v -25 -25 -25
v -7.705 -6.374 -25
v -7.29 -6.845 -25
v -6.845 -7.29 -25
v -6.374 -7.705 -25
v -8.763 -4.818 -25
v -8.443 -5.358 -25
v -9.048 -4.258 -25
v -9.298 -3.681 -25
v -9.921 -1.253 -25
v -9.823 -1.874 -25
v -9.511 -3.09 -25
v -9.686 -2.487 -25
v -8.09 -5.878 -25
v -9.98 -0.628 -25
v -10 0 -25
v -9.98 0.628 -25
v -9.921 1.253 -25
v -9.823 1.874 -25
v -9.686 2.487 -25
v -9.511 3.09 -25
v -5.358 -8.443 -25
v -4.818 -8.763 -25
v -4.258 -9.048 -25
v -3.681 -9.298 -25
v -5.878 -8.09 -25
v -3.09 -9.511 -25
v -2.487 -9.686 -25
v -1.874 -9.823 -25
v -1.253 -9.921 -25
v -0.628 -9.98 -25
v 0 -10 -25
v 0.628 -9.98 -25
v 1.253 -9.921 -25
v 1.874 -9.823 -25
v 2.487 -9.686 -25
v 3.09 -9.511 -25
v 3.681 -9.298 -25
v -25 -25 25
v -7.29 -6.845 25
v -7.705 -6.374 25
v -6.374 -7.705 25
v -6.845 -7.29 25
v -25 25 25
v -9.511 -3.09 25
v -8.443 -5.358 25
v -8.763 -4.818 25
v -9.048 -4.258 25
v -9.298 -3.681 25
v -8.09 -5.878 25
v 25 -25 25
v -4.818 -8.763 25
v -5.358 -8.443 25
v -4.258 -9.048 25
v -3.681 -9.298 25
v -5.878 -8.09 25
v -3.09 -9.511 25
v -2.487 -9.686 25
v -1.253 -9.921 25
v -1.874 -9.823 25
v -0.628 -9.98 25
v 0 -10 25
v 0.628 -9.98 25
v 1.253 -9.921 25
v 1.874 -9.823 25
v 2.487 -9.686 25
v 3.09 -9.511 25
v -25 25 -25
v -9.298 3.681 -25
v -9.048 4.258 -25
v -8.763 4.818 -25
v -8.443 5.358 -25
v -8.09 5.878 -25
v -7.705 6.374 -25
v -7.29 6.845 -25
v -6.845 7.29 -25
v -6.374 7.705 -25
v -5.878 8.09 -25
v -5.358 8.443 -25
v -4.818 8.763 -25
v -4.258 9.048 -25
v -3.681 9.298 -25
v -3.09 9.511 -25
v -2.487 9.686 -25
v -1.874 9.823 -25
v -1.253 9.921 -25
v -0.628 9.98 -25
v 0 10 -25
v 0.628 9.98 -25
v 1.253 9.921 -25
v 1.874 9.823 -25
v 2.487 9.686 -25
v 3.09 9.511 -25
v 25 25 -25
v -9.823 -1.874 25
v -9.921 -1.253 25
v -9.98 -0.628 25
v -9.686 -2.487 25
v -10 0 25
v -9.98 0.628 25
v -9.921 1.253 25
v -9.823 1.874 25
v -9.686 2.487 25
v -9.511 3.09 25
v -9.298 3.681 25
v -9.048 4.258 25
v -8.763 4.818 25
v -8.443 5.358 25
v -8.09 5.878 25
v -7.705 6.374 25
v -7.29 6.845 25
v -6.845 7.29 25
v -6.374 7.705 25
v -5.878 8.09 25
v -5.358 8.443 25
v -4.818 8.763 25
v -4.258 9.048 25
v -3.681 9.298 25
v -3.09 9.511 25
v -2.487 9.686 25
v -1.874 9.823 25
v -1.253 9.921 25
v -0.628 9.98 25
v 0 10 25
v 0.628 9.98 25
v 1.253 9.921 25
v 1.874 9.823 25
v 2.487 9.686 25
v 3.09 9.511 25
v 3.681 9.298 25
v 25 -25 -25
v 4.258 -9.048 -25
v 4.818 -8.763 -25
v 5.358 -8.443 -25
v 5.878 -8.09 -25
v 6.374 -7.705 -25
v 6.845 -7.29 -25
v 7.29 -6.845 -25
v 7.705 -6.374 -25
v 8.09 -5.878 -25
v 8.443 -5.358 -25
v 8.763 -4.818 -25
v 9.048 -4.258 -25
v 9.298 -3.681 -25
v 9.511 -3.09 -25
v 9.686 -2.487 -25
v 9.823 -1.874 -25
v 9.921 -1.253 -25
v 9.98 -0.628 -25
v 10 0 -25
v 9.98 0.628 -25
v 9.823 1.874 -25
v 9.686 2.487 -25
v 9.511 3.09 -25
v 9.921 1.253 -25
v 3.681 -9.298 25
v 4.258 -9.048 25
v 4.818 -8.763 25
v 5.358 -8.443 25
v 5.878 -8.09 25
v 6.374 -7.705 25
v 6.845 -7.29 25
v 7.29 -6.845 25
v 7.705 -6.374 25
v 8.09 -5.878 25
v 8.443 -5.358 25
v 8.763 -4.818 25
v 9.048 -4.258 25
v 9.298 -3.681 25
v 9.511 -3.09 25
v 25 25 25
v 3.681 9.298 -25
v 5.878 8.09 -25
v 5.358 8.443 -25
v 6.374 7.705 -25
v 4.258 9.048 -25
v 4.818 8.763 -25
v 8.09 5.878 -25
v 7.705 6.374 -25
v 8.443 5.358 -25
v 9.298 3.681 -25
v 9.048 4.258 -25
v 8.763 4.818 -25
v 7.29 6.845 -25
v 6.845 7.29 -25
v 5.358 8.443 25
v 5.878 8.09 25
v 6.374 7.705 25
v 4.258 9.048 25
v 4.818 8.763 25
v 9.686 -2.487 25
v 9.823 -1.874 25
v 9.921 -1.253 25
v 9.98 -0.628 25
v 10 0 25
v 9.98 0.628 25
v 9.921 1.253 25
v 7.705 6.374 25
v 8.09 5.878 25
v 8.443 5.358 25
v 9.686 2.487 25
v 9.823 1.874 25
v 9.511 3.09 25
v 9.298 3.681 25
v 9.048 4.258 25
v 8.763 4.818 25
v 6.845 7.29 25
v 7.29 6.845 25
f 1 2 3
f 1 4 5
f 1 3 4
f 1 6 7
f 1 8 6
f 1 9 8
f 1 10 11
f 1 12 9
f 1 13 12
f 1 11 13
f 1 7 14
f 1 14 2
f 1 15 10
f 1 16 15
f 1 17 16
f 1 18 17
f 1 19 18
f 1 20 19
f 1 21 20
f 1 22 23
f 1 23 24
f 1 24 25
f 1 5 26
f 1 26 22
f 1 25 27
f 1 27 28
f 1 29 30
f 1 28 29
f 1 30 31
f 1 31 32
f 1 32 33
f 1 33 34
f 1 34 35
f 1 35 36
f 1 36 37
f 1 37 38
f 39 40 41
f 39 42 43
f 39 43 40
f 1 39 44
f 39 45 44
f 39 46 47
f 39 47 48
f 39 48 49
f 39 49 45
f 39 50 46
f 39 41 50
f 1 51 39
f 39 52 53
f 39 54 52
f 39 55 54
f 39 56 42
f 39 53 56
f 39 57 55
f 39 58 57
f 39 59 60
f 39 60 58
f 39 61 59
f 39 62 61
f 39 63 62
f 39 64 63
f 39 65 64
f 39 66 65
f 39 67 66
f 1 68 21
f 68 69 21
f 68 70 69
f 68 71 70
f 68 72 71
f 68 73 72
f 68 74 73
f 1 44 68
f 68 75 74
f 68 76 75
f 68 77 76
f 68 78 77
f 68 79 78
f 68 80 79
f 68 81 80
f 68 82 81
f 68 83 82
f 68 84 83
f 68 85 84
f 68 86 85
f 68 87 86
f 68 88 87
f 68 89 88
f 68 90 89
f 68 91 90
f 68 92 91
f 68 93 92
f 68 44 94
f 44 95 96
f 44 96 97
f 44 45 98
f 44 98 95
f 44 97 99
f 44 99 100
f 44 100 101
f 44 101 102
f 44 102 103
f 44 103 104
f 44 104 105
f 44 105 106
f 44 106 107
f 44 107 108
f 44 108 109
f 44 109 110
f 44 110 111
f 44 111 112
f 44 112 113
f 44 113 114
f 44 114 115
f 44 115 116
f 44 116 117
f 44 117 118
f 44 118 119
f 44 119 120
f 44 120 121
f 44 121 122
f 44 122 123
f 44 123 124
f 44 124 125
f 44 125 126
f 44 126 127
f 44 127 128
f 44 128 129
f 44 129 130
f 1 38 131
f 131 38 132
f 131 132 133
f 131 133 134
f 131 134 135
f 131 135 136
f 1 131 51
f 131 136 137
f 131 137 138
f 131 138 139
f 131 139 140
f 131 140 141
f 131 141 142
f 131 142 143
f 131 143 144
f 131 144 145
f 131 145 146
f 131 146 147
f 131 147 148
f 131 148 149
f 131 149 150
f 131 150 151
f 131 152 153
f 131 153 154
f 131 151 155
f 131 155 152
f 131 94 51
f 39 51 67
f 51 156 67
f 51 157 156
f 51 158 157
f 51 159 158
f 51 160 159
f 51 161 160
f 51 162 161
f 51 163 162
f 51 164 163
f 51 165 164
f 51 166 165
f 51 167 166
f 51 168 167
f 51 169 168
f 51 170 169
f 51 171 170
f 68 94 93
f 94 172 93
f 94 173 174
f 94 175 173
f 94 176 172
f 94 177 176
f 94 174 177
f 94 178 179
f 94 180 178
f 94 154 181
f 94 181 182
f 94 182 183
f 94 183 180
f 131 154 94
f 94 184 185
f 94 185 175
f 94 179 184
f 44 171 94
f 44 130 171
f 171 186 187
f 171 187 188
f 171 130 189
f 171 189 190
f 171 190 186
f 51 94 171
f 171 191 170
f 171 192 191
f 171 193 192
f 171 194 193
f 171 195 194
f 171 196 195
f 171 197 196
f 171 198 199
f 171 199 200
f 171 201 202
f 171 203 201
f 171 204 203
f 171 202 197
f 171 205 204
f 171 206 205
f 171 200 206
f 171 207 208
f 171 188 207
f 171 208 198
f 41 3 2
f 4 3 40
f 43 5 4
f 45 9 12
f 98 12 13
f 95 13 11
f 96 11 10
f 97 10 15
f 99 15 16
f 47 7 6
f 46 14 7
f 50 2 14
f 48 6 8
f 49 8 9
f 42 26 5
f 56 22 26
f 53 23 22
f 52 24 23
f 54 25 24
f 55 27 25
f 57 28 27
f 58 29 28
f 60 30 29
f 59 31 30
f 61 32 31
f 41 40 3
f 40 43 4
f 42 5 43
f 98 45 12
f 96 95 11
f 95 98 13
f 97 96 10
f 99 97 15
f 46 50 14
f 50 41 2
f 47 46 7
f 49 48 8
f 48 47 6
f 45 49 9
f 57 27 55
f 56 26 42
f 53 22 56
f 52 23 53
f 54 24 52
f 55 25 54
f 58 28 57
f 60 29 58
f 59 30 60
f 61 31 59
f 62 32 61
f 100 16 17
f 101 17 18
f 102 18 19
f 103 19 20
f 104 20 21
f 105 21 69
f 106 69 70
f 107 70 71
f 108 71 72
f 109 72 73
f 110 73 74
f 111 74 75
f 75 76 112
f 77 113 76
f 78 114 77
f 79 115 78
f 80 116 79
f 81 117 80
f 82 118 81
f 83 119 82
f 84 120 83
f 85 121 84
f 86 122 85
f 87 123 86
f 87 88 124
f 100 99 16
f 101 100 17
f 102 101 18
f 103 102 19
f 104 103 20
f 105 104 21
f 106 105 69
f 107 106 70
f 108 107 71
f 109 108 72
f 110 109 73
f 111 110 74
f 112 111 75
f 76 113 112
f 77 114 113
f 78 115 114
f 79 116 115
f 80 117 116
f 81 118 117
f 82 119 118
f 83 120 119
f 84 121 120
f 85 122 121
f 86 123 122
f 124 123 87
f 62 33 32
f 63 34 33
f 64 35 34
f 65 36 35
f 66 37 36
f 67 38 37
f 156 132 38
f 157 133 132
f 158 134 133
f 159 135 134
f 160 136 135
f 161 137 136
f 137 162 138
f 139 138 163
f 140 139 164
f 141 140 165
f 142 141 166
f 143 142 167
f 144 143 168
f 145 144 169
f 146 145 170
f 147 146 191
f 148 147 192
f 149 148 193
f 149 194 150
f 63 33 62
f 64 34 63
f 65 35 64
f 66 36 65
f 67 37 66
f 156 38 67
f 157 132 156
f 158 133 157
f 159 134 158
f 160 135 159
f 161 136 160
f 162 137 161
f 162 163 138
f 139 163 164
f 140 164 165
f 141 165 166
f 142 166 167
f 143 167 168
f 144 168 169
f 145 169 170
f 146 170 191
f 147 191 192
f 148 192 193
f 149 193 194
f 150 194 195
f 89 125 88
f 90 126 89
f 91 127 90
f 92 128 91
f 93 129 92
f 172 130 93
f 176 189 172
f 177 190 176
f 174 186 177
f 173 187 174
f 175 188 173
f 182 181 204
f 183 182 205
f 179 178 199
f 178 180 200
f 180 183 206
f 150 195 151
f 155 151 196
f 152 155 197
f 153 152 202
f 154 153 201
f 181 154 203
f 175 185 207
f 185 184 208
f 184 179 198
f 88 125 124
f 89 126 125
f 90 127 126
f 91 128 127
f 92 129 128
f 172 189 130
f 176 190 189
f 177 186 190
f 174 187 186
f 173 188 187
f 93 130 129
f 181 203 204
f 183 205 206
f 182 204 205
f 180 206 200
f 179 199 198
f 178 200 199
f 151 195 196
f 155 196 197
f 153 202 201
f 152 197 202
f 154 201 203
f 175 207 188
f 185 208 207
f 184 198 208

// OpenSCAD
// 50mm角の立方体の中央に直径20mmのZ軸方向貫通穴

$fn = 100;

cube_size = 50;
hole_d = 20;

difference() {
    // 50mm角の立方体（原点中心）
    cube([cube_size, cube_size, cube_size], center = true);

    // 中央を z 軸方向に貫通する直径20mmの穴
    cylinder(h = cube_size + 2, d = hole_d, center = true);
}
